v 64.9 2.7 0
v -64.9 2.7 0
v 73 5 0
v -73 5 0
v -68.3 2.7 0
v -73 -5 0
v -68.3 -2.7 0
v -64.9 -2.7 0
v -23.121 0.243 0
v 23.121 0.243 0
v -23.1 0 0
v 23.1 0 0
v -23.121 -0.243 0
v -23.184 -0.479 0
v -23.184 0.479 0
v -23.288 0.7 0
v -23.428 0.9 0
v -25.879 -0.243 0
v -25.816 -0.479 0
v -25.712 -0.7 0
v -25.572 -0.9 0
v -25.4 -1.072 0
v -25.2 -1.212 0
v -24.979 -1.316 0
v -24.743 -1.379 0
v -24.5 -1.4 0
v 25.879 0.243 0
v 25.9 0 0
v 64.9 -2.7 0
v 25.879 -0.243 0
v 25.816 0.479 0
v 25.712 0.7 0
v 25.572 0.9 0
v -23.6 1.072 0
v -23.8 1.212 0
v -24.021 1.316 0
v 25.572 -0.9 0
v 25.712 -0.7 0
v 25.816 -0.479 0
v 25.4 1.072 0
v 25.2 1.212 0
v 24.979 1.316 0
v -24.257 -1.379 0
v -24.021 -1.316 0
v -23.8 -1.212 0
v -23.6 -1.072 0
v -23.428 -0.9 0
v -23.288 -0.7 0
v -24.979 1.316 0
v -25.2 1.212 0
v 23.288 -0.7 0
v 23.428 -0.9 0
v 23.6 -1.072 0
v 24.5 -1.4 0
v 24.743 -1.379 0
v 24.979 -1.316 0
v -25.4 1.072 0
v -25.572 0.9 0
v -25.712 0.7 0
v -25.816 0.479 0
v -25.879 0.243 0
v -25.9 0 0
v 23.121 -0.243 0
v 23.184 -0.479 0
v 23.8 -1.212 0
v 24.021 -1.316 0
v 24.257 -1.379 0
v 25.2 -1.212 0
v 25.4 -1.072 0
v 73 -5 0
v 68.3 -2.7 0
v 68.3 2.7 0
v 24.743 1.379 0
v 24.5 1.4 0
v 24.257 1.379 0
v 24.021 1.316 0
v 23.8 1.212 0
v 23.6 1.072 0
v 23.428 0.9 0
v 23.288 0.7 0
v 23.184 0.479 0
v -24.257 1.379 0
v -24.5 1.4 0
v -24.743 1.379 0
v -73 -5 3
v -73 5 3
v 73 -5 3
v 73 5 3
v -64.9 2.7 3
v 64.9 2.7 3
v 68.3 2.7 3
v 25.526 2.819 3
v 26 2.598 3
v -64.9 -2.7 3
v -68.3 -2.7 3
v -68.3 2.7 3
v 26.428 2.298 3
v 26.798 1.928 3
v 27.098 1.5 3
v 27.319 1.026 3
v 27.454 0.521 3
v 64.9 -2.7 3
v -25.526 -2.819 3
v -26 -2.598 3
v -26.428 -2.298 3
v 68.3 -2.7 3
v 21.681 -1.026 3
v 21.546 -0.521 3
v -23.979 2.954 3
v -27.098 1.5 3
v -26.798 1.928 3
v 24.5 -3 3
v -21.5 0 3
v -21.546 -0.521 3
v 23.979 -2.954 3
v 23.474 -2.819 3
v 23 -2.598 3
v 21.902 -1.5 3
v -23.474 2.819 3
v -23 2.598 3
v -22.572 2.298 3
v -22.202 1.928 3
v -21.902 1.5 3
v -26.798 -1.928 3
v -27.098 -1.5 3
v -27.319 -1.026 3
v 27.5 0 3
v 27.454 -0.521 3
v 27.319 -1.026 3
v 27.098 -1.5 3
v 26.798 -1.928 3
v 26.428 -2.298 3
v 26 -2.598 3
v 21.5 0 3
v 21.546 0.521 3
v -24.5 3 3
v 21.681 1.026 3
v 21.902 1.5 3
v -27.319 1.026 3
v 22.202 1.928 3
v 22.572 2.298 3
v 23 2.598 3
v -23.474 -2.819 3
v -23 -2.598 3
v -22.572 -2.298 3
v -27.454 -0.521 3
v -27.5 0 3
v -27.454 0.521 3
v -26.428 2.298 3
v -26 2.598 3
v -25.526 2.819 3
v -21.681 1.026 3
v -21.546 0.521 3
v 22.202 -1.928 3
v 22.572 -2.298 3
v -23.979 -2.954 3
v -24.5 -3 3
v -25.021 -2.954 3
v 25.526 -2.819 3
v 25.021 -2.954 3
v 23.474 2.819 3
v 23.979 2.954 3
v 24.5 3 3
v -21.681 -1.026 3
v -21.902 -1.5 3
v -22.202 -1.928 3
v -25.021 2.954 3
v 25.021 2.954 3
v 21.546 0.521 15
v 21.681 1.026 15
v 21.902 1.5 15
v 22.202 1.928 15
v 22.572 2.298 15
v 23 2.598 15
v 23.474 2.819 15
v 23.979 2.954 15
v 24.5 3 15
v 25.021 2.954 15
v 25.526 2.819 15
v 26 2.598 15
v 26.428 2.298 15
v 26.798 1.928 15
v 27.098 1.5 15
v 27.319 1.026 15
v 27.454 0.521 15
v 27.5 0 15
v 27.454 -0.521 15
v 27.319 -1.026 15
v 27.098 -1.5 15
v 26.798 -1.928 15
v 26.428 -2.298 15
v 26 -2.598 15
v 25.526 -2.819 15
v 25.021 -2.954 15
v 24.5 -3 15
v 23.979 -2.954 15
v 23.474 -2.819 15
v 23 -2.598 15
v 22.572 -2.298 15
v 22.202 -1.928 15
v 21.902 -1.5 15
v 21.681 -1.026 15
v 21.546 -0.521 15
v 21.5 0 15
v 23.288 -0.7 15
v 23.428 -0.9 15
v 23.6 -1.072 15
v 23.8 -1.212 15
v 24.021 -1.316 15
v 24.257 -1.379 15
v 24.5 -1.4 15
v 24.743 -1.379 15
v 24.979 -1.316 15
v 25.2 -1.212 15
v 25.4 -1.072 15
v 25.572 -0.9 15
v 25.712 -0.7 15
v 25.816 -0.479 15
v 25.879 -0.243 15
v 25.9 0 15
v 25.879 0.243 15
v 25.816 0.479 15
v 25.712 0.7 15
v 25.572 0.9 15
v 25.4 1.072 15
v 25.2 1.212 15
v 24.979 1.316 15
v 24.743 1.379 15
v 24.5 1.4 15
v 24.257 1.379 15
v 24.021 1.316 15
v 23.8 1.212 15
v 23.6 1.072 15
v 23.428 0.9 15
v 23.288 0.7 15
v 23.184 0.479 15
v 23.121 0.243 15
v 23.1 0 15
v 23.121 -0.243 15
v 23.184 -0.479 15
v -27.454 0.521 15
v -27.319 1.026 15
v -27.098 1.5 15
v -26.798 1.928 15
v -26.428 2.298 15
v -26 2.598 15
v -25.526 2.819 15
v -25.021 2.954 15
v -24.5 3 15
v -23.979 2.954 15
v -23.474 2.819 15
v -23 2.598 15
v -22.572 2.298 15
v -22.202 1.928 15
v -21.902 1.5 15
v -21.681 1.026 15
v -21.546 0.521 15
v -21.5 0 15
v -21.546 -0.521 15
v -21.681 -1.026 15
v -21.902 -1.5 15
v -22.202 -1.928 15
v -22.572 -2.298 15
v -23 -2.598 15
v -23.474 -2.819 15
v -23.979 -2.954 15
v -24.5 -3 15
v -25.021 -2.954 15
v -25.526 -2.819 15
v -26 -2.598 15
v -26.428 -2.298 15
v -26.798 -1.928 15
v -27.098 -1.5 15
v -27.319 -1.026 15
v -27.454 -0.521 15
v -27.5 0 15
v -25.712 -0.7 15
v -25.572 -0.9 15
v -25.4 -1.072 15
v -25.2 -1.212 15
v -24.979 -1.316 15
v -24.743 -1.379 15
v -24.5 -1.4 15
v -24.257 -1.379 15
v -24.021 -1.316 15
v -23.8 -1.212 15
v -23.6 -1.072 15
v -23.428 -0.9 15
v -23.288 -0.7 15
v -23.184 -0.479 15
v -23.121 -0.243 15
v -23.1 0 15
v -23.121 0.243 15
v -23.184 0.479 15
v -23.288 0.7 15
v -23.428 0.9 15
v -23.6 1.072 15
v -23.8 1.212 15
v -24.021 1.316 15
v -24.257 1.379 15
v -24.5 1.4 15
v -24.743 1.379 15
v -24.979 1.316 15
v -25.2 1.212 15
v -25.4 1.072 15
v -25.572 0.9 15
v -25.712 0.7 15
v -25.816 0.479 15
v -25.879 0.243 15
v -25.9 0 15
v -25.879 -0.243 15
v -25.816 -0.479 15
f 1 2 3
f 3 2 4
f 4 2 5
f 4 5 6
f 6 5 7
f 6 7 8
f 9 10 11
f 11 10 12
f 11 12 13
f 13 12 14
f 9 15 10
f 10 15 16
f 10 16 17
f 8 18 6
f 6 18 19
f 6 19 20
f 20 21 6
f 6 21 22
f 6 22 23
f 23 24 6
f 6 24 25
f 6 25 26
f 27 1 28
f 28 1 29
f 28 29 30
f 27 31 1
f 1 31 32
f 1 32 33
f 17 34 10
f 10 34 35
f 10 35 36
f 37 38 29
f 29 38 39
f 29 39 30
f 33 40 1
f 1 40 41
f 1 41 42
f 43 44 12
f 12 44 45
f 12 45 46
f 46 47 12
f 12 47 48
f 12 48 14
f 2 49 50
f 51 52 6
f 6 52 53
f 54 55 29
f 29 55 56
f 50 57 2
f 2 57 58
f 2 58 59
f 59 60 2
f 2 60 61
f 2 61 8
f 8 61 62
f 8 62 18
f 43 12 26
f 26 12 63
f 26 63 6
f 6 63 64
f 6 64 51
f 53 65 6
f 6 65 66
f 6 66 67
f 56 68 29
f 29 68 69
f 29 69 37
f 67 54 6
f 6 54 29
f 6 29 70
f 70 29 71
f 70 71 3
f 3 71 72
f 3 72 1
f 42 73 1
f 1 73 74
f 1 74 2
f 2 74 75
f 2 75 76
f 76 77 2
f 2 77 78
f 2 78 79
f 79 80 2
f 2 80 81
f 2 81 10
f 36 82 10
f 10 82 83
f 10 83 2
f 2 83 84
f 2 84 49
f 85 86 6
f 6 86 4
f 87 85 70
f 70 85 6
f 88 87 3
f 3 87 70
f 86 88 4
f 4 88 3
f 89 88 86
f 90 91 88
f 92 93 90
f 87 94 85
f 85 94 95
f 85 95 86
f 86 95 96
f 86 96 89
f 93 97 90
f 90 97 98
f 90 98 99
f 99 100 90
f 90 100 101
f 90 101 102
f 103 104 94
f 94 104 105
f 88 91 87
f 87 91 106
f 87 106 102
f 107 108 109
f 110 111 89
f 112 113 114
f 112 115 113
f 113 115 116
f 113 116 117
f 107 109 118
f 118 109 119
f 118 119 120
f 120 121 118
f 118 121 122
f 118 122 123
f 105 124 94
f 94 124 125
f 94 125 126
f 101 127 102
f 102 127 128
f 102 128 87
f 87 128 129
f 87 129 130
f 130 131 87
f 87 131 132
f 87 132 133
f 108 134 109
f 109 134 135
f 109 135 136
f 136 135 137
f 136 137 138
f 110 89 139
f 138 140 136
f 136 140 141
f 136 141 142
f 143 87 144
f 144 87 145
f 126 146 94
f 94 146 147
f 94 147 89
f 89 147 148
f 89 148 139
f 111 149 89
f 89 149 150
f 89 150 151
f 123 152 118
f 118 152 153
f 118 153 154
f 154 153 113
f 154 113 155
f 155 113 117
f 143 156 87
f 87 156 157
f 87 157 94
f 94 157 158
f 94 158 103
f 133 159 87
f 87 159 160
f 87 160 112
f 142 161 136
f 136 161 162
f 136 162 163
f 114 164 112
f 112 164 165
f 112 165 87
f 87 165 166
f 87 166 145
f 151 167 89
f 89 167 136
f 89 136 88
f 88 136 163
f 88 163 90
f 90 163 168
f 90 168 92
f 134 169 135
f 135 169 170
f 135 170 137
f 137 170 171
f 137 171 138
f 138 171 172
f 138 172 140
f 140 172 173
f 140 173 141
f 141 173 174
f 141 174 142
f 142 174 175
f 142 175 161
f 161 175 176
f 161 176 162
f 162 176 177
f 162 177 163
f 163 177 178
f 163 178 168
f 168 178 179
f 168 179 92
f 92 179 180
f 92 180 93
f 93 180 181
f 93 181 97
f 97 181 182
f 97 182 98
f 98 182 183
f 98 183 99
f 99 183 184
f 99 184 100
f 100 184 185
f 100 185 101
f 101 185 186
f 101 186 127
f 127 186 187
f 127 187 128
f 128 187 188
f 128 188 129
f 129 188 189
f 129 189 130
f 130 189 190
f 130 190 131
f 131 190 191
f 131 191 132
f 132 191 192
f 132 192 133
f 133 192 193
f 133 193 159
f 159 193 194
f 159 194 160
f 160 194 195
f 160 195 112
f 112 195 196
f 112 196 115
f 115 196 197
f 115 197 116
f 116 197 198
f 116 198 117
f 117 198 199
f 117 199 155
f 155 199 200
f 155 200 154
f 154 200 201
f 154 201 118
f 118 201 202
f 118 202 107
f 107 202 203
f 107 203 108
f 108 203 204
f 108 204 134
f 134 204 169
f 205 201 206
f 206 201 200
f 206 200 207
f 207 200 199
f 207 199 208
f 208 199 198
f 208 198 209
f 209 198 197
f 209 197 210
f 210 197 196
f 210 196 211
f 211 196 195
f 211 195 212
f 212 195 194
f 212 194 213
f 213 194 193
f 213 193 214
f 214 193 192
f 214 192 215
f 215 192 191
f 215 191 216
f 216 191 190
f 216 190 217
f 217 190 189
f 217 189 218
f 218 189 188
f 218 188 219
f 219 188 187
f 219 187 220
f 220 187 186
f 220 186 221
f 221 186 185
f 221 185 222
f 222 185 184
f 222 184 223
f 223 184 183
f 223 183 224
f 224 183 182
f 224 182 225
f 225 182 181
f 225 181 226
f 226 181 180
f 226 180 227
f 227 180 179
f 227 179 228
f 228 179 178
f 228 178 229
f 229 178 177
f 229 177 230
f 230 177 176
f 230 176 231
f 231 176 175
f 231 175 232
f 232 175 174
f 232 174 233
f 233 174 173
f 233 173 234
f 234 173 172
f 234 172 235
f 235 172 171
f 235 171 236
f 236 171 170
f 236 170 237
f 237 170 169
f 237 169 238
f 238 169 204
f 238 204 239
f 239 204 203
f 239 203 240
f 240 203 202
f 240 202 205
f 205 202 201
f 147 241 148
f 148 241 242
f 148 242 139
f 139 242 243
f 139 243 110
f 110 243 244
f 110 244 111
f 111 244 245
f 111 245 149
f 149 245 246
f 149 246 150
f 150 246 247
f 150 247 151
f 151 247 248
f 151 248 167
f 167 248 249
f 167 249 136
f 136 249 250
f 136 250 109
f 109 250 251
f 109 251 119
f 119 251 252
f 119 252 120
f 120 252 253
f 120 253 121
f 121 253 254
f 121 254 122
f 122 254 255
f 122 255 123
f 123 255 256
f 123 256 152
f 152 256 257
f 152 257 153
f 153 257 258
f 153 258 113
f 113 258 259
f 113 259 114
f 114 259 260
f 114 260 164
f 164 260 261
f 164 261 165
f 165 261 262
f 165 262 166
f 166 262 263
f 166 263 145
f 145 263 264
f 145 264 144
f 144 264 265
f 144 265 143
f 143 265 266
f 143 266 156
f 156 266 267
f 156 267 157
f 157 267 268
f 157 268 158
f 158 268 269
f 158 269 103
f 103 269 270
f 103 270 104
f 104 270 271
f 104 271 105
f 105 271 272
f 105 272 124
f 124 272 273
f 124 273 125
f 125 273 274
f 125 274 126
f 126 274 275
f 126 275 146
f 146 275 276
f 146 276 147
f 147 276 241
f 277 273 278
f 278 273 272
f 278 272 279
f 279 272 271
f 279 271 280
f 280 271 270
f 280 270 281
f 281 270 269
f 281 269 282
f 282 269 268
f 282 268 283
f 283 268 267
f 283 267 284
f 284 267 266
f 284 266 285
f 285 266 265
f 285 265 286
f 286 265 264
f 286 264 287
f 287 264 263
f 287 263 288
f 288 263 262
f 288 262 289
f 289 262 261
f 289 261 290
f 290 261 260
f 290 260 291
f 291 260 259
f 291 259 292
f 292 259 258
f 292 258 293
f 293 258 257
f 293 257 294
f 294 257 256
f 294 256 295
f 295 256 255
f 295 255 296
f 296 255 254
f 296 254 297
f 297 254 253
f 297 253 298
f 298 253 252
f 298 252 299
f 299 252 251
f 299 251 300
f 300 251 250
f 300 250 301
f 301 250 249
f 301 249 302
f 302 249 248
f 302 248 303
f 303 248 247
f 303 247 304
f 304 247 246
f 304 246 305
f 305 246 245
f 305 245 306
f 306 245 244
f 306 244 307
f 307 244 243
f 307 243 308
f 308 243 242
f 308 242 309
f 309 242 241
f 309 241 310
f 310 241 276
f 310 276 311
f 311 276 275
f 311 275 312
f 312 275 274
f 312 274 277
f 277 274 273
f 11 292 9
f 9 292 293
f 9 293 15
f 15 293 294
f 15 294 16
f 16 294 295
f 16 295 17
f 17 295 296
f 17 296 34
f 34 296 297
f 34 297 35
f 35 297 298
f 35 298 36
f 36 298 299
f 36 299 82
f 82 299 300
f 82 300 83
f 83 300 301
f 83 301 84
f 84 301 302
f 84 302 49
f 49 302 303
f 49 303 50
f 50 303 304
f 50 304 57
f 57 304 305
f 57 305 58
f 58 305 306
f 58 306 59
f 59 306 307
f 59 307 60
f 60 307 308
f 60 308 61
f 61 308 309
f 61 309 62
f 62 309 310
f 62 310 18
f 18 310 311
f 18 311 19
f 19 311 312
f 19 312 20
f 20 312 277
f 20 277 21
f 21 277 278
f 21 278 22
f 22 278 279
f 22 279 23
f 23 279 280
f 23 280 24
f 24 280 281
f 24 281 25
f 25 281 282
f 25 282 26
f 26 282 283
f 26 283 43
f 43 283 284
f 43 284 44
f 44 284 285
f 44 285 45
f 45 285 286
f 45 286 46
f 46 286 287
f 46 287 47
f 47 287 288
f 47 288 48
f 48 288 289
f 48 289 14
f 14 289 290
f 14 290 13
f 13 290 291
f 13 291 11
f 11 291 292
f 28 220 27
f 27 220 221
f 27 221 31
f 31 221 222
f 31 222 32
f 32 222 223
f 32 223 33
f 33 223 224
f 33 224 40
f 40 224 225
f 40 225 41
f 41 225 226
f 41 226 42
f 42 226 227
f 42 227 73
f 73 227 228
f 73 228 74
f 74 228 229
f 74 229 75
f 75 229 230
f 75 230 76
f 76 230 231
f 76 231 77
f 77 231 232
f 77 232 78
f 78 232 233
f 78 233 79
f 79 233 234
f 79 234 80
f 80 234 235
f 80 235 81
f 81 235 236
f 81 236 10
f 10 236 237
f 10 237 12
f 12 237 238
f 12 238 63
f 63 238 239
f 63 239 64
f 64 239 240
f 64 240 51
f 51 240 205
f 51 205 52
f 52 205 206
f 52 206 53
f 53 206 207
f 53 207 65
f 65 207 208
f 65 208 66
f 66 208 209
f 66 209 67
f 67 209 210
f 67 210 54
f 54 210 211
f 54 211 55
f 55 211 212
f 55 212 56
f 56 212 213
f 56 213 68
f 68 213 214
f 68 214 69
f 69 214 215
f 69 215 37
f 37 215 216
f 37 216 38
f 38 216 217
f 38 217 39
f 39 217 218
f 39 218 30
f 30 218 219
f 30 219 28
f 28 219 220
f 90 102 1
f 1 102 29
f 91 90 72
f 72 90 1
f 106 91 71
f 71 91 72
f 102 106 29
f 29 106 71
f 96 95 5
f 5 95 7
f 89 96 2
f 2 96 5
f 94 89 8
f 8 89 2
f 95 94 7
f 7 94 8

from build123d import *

# Parameters (mm, degrees)
SKETCH_1_W                = 146
SKETCH_1_H                = 10
EXTRUDE_146X10_DEPTH      = 3
F_12MM_START              = 3
SKETCH_2_R                = 3
F_12MM_DEPTH              = 12
M2P5_DEPTH                = 75.692703794
M2P5_DEPTH_BACK           = 75.692703794
SKETCH_3_R                = 1.4
CUT_EXTRUDE_M3_DEPTH      = 75.692703794
CUT_EXTRUDE_M3_DEPTH_BACK = 75.692703794
SKETCH_4_W                = 3.4
SKETCH_4_H                = 5.4


with BuildPart() as part:
    # 草图1 → 主板轻量横条146x10 (new body)
    with BuildSketch(Plane.XY):
        Rectangle(SKETCH_1_W, SKETCH_1_H)
    extrude(amount=EXTRUDE_146X10_DEPTH)

    # 草图2 → 主板12mm支柱 (add)
    with BuildSketch(Plane.XY.offset(F_12MM_START)):
        with Locations((-24.5, 0)):
            Circle(SKETCH_2_R)
        with Locations((24.5, 0)):
            Circle(SKETCH_2_R)
    extrude(amount=F_12MM_DEPTH)

    # 草图3 → 主板M2p5通孔 (cut, two sides: drawn at the far end of the back side and taken through both)
    with BuildSketch(Plane.XY.offset(-M2P5_DEPTH_BACK)):
        with Locations((-24.5, 0)):
            Circle(SKETCH_3_R)
        with Locations((24.5, 0)):
            Circle(SKETCH_3_R)
    extrude(amount=M2P5_DEPTH + M2P5_DEPTH_BACK, mode=Mode.SUBTRACT)

    # 草图4 → 梁上M3调节槽 (cut, two sides: drawn at the far end of the back side and taken through both)
    with BuildSketch(Plane.XY.offset(-CUT_EXTRUDE_M3_DEPTH_BACK)):
        with Locations((-66.6, 0)):
            Rectangle(SKETCH_4_W, SKETCH_4_H)
        with Locations((66.6, 0)):
            Rectangle(SKETCH_4_W, SKETCH_4_H)
    extrude(amount=CUT_EXTRUDE_M3_DEPTH + CUT_EXTRUDE_M3_DEPTH_BACK, mode=Mode.SUBTRACT)


solid = part.part
